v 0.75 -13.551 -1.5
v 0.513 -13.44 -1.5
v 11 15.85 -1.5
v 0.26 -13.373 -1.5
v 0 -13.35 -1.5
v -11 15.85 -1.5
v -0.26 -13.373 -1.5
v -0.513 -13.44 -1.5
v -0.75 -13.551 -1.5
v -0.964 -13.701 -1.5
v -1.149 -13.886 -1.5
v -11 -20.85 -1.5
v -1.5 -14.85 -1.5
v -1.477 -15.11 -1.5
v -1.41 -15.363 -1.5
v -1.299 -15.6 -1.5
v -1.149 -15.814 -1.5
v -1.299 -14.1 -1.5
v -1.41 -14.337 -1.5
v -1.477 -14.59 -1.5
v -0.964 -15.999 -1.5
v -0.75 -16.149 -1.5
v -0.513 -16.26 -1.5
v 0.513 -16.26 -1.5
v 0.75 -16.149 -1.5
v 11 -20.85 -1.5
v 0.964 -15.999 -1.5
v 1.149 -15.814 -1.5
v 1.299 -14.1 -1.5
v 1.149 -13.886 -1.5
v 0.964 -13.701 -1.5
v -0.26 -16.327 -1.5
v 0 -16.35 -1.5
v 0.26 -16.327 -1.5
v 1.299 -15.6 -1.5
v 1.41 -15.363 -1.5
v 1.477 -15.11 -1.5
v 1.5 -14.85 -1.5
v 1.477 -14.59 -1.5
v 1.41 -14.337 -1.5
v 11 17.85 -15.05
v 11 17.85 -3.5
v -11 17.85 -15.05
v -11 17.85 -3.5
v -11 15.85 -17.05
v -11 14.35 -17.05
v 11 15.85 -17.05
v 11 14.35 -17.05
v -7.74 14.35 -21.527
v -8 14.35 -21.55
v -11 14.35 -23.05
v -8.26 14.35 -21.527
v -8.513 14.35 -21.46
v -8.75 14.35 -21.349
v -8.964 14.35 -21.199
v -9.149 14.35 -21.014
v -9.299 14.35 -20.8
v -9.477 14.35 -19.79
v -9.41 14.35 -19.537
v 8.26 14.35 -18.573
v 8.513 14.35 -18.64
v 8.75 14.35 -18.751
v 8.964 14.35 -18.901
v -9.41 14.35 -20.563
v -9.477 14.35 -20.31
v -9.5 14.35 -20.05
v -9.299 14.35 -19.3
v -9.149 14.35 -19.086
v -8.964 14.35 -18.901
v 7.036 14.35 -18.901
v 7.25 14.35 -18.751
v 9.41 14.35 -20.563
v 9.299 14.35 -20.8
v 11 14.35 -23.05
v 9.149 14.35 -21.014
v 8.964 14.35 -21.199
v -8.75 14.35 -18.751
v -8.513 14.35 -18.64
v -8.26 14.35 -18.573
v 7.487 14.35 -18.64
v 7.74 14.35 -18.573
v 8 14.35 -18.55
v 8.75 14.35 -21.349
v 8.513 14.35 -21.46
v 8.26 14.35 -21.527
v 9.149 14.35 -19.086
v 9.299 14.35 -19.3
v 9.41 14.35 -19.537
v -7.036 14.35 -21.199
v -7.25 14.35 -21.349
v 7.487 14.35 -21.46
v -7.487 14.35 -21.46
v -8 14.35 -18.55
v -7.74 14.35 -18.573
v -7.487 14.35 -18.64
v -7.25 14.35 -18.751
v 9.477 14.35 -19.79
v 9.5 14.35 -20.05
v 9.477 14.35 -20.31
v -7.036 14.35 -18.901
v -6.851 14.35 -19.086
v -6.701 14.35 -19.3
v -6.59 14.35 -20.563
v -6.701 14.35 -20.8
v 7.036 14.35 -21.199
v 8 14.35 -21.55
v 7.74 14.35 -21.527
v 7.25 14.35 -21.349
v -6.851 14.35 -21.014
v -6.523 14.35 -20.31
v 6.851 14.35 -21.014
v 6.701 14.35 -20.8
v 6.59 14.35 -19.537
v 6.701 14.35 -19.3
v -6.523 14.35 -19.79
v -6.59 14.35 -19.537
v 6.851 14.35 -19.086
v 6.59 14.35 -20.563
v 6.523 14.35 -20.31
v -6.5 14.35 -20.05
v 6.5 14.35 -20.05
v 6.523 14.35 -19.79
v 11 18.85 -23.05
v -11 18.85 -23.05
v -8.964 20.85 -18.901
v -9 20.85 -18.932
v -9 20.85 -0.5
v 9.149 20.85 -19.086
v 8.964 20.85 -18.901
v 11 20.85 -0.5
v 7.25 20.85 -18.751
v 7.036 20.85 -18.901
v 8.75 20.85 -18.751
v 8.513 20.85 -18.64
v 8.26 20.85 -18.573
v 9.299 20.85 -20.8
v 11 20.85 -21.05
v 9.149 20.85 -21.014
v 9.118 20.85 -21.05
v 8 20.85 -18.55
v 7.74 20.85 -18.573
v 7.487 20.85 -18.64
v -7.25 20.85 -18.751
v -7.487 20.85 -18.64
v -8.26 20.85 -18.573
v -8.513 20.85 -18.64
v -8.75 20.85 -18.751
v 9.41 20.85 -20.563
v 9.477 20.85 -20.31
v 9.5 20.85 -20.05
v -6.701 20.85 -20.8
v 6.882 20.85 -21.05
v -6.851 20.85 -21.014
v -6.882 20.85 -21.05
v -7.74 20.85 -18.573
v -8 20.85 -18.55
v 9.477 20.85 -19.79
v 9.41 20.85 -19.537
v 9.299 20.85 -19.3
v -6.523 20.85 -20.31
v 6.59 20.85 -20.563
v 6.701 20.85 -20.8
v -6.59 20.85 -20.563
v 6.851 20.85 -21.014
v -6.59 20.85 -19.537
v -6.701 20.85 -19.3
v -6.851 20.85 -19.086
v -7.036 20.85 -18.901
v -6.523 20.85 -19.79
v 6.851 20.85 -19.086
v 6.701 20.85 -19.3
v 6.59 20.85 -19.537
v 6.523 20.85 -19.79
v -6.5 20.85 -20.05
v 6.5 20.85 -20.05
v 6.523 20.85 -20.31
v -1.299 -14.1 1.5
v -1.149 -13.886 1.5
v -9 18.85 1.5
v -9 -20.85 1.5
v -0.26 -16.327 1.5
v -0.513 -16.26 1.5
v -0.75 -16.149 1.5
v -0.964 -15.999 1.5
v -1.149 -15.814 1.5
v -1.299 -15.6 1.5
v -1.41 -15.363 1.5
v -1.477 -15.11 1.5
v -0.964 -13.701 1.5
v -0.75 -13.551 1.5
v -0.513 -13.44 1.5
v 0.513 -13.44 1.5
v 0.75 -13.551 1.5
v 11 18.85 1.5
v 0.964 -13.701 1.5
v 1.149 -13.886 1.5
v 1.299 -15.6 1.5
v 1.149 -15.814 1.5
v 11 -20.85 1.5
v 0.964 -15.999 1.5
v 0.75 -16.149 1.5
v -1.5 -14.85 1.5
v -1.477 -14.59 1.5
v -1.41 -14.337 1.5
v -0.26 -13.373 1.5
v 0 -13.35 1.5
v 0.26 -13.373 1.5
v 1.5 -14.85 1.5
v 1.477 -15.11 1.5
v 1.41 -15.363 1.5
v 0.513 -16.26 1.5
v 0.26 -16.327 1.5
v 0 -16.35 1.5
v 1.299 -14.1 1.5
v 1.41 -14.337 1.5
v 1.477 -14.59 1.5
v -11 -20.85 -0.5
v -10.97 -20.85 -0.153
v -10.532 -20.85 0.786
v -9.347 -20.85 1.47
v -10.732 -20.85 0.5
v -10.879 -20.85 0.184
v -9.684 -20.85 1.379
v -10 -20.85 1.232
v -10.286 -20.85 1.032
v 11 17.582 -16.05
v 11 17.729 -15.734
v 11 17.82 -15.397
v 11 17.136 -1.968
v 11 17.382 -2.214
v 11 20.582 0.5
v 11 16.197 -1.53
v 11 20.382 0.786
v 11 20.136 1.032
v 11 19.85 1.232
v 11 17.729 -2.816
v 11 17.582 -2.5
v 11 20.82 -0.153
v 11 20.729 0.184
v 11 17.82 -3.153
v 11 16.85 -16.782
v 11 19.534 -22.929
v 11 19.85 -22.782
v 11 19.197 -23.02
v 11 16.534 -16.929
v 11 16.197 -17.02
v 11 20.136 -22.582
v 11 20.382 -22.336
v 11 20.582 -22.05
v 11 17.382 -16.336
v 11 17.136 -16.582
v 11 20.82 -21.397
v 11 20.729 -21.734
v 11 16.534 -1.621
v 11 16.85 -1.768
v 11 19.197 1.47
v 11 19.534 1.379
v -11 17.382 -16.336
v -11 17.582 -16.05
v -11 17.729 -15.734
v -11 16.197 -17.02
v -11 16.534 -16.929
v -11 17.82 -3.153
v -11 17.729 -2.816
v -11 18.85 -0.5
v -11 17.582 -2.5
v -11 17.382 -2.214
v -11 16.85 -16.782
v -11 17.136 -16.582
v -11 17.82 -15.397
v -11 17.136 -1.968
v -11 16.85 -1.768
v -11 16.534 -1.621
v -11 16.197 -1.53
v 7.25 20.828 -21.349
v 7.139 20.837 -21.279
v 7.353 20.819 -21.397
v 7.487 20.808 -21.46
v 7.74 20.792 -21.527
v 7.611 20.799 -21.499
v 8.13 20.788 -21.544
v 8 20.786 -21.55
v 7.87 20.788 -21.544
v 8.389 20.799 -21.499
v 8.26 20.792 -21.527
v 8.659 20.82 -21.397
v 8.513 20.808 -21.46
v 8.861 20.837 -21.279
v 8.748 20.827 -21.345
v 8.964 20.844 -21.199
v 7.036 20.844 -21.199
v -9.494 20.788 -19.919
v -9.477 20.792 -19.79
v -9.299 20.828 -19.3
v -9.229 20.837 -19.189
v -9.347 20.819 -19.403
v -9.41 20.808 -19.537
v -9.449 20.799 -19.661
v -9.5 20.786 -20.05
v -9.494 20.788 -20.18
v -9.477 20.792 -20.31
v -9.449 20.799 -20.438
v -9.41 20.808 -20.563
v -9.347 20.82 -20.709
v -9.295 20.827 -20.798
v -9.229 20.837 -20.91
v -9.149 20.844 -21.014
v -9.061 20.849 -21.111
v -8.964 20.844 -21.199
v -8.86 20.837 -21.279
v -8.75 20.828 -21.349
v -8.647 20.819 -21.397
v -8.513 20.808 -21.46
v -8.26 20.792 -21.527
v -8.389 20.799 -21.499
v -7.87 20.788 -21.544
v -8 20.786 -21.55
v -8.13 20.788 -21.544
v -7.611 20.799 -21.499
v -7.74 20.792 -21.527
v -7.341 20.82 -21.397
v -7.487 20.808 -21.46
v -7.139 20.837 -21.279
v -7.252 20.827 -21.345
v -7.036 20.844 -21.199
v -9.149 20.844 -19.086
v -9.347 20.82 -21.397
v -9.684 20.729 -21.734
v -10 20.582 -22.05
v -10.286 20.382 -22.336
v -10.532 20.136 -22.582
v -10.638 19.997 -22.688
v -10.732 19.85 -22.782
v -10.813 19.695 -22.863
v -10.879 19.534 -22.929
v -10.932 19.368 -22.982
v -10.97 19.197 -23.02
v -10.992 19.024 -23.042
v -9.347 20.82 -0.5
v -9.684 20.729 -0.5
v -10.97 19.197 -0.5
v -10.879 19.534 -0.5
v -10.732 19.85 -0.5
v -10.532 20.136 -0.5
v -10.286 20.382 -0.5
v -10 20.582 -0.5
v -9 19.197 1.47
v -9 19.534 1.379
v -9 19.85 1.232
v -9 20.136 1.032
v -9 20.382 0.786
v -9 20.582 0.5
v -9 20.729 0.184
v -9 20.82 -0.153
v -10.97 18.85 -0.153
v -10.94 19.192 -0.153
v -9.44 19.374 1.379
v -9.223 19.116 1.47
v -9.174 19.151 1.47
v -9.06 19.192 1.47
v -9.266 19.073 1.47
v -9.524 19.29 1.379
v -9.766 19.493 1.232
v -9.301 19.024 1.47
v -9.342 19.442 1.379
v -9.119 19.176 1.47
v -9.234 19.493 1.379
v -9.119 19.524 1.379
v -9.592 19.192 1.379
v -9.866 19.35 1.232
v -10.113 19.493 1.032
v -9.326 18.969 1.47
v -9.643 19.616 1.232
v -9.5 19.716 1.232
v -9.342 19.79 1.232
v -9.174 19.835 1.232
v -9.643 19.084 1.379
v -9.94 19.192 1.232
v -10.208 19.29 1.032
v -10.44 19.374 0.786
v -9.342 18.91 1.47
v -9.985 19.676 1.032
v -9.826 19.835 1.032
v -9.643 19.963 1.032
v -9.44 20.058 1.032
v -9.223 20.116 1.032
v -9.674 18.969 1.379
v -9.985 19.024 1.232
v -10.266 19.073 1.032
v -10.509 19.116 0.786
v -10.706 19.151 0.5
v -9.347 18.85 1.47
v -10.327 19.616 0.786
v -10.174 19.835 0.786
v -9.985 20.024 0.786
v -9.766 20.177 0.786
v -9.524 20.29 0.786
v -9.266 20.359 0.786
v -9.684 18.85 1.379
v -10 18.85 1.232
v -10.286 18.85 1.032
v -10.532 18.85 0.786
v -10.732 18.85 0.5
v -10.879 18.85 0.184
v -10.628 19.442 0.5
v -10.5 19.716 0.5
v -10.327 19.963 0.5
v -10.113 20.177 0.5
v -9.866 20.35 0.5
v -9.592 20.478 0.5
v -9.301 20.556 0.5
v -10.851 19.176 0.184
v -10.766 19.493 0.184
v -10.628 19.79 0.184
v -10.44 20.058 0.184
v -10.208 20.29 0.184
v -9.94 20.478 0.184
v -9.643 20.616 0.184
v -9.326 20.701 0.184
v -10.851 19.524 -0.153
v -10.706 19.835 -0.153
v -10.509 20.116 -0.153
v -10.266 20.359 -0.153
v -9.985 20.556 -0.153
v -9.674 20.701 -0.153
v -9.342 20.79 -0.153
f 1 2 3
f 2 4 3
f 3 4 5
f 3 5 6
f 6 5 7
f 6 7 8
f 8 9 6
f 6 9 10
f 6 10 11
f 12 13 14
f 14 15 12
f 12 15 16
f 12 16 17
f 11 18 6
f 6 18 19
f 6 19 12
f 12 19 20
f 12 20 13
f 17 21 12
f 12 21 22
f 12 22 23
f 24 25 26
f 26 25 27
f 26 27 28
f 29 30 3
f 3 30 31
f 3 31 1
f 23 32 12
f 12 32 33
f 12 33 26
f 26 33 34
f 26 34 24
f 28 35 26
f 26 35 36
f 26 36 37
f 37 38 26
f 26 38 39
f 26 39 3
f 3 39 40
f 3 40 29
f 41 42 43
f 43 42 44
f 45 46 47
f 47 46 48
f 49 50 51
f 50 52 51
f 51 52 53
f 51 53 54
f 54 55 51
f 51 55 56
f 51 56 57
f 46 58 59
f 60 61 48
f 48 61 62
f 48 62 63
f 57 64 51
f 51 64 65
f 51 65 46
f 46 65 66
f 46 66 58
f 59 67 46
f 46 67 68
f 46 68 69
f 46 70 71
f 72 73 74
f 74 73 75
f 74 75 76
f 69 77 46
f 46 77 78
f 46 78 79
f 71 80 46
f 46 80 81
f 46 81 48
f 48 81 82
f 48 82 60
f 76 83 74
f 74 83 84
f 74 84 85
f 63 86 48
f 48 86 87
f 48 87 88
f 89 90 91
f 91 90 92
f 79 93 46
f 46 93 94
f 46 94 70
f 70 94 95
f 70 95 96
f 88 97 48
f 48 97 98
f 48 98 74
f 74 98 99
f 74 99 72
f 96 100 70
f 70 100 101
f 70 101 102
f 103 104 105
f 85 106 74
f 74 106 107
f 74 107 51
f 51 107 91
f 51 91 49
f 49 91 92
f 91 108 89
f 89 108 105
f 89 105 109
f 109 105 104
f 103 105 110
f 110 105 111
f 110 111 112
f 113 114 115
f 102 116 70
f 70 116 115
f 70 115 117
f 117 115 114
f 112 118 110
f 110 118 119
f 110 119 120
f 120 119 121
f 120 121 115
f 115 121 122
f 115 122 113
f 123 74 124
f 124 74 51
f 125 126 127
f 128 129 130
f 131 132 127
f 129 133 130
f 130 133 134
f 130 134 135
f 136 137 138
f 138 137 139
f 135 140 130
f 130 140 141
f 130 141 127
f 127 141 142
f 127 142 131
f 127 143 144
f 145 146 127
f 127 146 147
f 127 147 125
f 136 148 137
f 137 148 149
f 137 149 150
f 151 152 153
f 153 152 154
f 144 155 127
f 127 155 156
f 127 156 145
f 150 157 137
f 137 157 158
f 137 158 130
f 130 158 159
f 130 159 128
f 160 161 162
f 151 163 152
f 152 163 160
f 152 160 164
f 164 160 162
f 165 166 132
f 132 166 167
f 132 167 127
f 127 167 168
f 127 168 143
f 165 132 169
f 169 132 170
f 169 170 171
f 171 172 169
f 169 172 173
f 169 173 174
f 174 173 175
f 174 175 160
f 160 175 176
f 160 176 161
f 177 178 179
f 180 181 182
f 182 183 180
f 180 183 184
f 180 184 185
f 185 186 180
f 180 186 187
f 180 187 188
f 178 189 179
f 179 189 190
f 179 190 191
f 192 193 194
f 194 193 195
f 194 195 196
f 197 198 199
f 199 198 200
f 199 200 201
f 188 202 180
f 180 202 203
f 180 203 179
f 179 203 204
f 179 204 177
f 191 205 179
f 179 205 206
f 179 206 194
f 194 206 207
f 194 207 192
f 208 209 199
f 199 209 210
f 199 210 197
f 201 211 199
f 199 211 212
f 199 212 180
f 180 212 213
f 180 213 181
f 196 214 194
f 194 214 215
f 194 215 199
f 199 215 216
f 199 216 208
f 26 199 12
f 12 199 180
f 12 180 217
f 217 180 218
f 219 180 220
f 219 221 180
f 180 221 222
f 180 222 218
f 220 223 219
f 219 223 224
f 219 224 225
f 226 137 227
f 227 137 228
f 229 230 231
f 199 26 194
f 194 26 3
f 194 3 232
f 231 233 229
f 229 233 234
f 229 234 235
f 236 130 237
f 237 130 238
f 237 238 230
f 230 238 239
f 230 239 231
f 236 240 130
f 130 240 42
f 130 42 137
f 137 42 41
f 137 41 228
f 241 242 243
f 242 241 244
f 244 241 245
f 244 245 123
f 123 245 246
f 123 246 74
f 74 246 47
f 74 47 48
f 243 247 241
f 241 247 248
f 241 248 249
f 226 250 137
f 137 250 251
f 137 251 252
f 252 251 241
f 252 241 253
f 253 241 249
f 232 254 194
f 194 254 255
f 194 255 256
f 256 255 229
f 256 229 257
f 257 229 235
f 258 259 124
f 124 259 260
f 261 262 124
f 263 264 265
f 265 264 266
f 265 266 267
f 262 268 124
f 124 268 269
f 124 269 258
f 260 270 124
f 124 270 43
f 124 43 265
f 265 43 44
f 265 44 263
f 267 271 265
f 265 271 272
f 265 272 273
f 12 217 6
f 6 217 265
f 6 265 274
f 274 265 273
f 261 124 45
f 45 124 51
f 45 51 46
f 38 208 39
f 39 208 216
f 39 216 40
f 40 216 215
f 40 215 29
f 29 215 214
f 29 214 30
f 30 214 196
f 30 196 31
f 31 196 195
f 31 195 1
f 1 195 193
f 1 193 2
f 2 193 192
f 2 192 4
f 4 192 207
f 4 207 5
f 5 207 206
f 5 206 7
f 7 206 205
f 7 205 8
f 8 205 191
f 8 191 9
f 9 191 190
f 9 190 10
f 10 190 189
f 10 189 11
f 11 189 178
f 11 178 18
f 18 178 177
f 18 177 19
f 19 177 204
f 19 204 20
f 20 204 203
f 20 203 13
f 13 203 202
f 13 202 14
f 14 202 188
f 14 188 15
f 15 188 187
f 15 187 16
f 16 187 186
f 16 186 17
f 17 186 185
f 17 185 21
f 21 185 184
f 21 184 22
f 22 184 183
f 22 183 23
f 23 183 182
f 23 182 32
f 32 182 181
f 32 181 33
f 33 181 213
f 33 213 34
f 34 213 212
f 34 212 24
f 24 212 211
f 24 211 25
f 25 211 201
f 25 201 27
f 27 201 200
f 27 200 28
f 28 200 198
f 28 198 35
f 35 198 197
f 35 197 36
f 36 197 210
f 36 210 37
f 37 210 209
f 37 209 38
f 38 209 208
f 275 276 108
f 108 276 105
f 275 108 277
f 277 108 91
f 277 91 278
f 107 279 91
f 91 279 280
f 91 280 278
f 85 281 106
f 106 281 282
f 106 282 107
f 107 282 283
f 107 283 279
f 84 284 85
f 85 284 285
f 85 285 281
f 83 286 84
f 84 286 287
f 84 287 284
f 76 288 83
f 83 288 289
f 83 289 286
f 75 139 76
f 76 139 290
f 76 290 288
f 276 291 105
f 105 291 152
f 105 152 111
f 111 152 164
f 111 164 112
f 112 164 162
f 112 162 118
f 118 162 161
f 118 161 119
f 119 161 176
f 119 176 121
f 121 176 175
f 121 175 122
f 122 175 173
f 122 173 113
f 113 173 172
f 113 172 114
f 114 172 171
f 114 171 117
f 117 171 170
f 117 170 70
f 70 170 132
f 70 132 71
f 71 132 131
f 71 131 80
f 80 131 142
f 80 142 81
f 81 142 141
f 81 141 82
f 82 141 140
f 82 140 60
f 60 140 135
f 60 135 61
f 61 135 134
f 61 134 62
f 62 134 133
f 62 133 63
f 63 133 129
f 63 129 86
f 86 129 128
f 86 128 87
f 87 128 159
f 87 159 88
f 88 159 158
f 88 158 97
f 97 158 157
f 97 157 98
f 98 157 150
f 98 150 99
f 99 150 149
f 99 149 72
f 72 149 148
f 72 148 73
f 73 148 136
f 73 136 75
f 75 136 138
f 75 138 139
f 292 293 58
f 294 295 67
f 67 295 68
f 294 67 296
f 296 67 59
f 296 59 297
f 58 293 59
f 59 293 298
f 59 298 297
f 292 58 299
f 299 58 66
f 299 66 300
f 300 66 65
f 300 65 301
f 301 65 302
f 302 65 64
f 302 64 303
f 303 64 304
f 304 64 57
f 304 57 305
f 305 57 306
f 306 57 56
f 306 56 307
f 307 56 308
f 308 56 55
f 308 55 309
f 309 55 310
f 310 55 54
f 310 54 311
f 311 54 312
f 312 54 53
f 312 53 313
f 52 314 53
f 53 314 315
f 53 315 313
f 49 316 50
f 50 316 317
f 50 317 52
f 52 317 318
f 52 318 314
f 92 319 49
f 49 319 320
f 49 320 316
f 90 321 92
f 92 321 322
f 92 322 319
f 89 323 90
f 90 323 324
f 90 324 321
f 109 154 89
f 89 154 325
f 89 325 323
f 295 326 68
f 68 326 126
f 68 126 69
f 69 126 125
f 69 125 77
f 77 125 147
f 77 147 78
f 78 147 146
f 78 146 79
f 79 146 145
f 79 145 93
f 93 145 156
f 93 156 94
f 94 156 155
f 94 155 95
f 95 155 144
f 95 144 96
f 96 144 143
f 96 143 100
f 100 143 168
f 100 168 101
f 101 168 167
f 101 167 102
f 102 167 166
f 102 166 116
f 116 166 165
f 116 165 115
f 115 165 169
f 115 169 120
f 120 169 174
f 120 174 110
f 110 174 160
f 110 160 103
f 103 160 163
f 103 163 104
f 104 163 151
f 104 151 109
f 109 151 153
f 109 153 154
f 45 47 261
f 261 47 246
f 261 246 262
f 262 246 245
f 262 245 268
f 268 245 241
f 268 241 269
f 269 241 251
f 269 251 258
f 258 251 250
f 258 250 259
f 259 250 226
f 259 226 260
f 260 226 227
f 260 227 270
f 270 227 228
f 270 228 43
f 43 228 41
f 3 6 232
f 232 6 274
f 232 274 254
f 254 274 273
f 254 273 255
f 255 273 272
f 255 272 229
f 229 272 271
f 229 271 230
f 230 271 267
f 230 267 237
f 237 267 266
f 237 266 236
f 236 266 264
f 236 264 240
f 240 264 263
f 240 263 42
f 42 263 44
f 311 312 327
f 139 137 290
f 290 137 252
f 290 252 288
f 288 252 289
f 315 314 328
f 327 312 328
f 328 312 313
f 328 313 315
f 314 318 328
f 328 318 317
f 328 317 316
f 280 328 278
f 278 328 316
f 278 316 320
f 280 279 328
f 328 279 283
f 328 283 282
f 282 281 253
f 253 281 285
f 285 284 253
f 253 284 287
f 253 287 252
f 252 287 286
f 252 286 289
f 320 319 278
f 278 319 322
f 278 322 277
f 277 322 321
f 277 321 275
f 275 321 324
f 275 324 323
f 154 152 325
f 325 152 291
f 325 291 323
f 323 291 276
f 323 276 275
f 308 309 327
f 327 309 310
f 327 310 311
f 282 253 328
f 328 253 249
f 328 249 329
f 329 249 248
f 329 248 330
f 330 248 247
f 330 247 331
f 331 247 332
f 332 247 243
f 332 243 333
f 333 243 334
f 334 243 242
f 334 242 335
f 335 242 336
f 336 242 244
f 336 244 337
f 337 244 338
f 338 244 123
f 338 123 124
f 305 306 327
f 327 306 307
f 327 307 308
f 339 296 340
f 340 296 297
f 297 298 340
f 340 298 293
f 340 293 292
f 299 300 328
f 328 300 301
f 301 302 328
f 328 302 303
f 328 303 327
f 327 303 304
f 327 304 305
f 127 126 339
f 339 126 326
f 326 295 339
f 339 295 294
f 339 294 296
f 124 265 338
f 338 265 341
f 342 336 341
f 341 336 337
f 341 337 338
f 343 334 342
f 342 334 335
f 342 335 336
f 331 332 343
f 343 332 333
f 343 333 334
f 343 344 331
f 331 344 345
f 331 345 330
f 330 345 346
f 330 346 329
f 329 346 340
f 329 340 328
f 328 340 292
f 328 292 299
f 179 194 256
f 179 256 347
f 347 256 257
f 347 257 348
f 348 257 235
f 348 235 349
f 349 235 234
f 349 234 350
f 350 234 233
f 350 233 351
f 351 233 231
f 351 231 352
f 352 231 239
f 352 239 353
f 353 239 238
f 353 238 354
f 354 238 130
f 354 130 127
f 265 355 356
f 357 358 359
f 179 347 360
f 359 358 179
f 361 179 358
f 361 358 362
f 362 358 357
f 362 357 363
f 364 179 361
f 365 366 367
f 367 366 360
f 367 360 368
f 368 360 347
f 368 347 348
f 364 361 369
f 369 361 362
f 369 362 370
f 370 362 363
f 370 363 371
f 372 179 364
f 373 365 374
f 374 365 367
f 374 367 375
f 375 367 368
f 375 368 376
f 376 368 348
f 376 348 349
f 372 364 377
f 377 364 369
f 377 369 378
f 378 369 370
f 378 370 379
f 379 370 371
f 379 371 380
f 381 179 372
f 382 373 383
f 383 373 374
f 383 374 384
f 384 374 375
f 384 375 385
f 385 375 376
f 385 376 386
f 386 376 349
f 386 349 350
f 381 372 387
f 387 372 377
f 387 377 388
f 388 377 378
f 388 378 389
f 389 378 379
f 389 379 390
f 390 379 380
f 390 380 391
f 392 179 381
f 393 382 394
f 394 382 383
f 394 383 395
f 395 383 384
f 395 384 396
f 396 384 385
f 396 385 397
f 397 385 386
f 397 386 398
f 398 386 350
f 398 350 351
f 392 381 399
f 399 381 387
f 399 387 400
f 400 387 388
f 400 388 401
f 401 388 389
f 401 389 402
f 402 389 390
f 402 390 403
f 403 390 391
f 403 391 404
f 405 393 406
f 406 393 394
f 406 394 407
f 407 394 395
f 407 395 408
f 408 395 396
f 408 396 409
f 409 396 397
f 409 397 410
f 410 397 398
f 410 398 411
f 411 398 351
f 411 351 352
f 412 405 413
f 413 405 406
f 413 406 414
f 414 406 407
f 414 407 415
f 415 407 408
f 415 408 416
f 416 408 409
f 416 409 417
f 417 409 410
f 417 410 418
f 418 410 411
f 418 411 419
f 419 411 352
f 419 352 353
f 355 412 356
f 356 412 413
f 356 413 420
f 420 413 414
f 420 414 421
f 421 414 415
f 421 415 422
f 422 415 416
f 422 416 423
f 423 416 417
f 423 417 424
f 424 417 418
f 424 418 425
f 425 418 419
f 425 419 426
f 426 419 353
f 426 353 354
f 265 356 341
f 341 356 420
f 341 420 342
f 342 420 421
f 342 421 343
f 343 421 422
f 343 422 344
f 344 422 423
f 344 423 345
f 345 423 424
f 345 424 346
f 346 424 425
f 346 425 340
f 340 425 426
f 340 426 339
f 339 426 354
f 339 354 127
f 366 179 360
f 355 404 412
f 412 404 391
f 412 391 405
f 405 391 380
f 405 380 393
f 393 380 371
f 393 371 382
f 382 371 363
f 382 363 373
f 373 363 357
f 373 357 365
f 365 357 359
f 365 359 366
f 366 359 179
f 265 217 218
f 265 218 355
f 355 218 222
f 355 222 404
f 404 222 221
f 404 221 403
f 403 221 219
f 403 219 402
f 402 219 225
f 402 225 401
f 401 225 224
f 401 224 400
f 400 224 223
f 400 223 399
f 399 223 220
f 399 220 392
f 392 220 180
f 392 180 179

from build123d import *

# Parameters (mm, degrees)
SKETCH1_W           = 3
SKETCH1_H           = 38.7
SKETCH1_H_2         = 3
SKETCH1_W_2         = 6
SKETCH1_H_3         = 3.5
BOSS_EXTRUDE1_DEPTH = 11
SKETCH2_R           = 1.5
CUT_EXTRUDE1_DEPTH  = 10
SKETCH3_R           = 1.5
CUT_EXTRUDE2_DEPTH  = 10
FILLET1_R           = 2


with BuildPart() as part:
    # Sketch1 → Boss-Extrude1 (new, symmetric)
    with BuildSketch(Plane(origin=(0, 0, 0), x_dir=(0, 0, -1), z_dir=(1, 0, 0))):
        with Locations((0, -1.5)):
            Rectangle(SKETCH1_W, SKETCH1_H)
        with Locations((0, 19.35)):
            Rectangle(SKETCH1_W, SKETCH1_H_2)
        Polygon((23.05, 20.85), (1.5, 20.85), (1.5, 17.85), (17.035825545, 17.85), (17.05, 17.85), (23.05, 17.85), align=None)
        with Locations((20.05, 16.1)):
            Rectangle(SKETCH1_W_2, SKETCH1_H_3)
    extrude(amount=BOSS_EXTRUDE1_DEPTH, both=True)

    # Sketch2 → Cut-Extrude1 (cut)
    with BuildSketch(Plane.XY.offset(1.5)):
        with Locations((0, -14.85)):
            Circle(SKETCH2_R)
    extrude(amount=-CUT_EXTRUDE1_DEPTH, mode=Mode.SUBTRACT)

    # Sketch3 → Cut-Extrude2 (cut)
    with BuildSketch(Plane(origin=(0, 20.85, 0), x_dir=(1, 0, 0), z_dir=(0, 1, 0))):
        with Locations(Location((-8, 20.05, 0), (0, 0, 270))):
            Circle(SKETCH3_R)
        with Locations(Location((8, 20.05, 0), (0, 0, 90))):
            Circle(SKETCH3_R)
    extrude(amount=-CUT_EXTRUDE2_DEPTH, mode=Mode.SUBTRACT)

    # Fillet1
    # the kernel refuses this fillet: 2 mm, written as the material it adds along each edge
    with BuildSketch(Plane(origin=(-11, 17.85, -17.05), x_dir=(0, 0, 1), z_dir=(1, 0, 0)), Plane(origin=(-11, 17.85, -1.5), x_dir=(0, -1, 0), z_dir=(1, 0, 0))) as fillet1_piece_1:
        with BuildLine():
            CenterArc((FILLET1_R, FILLET1_R), FILLET1_R, 180, 90)
            Line((0, FILLET1_R), (0, 0))
            Line((0, 0), (FILLET1_R, 0))
        make_face()
    extrude(amount=22)
    # the kernel refuses this fillet: 2 mm, written as the material it takes off along each edge
    with BuildSketch(Plane(origin=(-9, 18.85, -0.5), x_dir=(-1, 0, 0), z_dir=(0, 0, 1))) as fillet1_2_piece_1_section:
        Polygon((0, 0), (FILLET1_R, 0), (FILLET1_R, -FILLET1_R), (0, -FILLET1_R), align=None)
    fillet1_2_piece_1 = extrude(amount=FILLET1_R, mode=Mode.PRIVATE)
    fillet1_2_piece_1 = fillet1_2_piece_1 - Plane(origin=(-9, 18.85, -0.5), x_dir=(0.7071067811865475, -0.7071067811865475, 0), z_dir=(0, 0, 1)) * Sphere(FILLET1_R, mode=Mode.PRIVATE)
    add(fillet1_2_piece_1, mode=Mode.SUBTRACT)
    with BuildSketch(Plane(origin=(-11, 18.85, 1.5), x_dir=(1, 0, 0), z_dir=(0, -1, 0))) as fillet1_2_piece_2:
        with BuildLine():
            CenterArc((FILLET1_R, -FILLET1_R), FILLET1_R, 90, 90)
            Line((0, -FILLET1_R), (0, 0))
            Line((0, 0), (FILLET1_R, 0))
        make_face()
    extrude(amount=44.7, mode=Mode.SUBTRACT)
    with BuildSketch(Plane(origin=(-11, 20.85, -28.05), x_dir=(0, -1, 0), z_dir=(0, 0, 1))) as fillet1_2_piece_3:
        with BuildLine():
            CenterArc((FILLET1_R, FILLET1_R), FILLET1_R, 180, 90)
            Line((0, FILLET1_R), (0, 0))
            Line((0, 0), (FILLET1_R, 0))
        make_face()
    extrude(amount=27.55, mode=Mode.SUBTRACT)
    with BuildSketch(Plane(origin=(16, 20.85, 1.5), x_dir=(0, -1, 0), z_dir=(-1, 0, 0))) as fillet1_2_piece_4:
        with BuildLine():
            CenterArc((FILLET1_R, -FILLET1_R), FILLET1_R, 90, 90)
            Line((0, -FILLET1_R), (0, 0))
            Line((0, 0), (FILLET1_R, 0))
        make_face()
    extrude(amount=25, mode=Mode.SUBTRACT)
    with BuildSketch(Plane(origin=(16, 20.85, -23.05), x_dir=(0, 0, 1), z_dir=(-1, 0, 0))) as fillet1_2_piece_5:
        with BuildLine():
            CenterArc((FILLET1_R, -FILLET1_R), FILLET1_R, 90, 90)
            Line((0, -FILLET1_R), (0, 0))
            Line((0, 0), (FILLET1_R, 0))
        make_face()
    extrude(amount=32, mode=Mode.SUBTRACT)


solid = part.part
